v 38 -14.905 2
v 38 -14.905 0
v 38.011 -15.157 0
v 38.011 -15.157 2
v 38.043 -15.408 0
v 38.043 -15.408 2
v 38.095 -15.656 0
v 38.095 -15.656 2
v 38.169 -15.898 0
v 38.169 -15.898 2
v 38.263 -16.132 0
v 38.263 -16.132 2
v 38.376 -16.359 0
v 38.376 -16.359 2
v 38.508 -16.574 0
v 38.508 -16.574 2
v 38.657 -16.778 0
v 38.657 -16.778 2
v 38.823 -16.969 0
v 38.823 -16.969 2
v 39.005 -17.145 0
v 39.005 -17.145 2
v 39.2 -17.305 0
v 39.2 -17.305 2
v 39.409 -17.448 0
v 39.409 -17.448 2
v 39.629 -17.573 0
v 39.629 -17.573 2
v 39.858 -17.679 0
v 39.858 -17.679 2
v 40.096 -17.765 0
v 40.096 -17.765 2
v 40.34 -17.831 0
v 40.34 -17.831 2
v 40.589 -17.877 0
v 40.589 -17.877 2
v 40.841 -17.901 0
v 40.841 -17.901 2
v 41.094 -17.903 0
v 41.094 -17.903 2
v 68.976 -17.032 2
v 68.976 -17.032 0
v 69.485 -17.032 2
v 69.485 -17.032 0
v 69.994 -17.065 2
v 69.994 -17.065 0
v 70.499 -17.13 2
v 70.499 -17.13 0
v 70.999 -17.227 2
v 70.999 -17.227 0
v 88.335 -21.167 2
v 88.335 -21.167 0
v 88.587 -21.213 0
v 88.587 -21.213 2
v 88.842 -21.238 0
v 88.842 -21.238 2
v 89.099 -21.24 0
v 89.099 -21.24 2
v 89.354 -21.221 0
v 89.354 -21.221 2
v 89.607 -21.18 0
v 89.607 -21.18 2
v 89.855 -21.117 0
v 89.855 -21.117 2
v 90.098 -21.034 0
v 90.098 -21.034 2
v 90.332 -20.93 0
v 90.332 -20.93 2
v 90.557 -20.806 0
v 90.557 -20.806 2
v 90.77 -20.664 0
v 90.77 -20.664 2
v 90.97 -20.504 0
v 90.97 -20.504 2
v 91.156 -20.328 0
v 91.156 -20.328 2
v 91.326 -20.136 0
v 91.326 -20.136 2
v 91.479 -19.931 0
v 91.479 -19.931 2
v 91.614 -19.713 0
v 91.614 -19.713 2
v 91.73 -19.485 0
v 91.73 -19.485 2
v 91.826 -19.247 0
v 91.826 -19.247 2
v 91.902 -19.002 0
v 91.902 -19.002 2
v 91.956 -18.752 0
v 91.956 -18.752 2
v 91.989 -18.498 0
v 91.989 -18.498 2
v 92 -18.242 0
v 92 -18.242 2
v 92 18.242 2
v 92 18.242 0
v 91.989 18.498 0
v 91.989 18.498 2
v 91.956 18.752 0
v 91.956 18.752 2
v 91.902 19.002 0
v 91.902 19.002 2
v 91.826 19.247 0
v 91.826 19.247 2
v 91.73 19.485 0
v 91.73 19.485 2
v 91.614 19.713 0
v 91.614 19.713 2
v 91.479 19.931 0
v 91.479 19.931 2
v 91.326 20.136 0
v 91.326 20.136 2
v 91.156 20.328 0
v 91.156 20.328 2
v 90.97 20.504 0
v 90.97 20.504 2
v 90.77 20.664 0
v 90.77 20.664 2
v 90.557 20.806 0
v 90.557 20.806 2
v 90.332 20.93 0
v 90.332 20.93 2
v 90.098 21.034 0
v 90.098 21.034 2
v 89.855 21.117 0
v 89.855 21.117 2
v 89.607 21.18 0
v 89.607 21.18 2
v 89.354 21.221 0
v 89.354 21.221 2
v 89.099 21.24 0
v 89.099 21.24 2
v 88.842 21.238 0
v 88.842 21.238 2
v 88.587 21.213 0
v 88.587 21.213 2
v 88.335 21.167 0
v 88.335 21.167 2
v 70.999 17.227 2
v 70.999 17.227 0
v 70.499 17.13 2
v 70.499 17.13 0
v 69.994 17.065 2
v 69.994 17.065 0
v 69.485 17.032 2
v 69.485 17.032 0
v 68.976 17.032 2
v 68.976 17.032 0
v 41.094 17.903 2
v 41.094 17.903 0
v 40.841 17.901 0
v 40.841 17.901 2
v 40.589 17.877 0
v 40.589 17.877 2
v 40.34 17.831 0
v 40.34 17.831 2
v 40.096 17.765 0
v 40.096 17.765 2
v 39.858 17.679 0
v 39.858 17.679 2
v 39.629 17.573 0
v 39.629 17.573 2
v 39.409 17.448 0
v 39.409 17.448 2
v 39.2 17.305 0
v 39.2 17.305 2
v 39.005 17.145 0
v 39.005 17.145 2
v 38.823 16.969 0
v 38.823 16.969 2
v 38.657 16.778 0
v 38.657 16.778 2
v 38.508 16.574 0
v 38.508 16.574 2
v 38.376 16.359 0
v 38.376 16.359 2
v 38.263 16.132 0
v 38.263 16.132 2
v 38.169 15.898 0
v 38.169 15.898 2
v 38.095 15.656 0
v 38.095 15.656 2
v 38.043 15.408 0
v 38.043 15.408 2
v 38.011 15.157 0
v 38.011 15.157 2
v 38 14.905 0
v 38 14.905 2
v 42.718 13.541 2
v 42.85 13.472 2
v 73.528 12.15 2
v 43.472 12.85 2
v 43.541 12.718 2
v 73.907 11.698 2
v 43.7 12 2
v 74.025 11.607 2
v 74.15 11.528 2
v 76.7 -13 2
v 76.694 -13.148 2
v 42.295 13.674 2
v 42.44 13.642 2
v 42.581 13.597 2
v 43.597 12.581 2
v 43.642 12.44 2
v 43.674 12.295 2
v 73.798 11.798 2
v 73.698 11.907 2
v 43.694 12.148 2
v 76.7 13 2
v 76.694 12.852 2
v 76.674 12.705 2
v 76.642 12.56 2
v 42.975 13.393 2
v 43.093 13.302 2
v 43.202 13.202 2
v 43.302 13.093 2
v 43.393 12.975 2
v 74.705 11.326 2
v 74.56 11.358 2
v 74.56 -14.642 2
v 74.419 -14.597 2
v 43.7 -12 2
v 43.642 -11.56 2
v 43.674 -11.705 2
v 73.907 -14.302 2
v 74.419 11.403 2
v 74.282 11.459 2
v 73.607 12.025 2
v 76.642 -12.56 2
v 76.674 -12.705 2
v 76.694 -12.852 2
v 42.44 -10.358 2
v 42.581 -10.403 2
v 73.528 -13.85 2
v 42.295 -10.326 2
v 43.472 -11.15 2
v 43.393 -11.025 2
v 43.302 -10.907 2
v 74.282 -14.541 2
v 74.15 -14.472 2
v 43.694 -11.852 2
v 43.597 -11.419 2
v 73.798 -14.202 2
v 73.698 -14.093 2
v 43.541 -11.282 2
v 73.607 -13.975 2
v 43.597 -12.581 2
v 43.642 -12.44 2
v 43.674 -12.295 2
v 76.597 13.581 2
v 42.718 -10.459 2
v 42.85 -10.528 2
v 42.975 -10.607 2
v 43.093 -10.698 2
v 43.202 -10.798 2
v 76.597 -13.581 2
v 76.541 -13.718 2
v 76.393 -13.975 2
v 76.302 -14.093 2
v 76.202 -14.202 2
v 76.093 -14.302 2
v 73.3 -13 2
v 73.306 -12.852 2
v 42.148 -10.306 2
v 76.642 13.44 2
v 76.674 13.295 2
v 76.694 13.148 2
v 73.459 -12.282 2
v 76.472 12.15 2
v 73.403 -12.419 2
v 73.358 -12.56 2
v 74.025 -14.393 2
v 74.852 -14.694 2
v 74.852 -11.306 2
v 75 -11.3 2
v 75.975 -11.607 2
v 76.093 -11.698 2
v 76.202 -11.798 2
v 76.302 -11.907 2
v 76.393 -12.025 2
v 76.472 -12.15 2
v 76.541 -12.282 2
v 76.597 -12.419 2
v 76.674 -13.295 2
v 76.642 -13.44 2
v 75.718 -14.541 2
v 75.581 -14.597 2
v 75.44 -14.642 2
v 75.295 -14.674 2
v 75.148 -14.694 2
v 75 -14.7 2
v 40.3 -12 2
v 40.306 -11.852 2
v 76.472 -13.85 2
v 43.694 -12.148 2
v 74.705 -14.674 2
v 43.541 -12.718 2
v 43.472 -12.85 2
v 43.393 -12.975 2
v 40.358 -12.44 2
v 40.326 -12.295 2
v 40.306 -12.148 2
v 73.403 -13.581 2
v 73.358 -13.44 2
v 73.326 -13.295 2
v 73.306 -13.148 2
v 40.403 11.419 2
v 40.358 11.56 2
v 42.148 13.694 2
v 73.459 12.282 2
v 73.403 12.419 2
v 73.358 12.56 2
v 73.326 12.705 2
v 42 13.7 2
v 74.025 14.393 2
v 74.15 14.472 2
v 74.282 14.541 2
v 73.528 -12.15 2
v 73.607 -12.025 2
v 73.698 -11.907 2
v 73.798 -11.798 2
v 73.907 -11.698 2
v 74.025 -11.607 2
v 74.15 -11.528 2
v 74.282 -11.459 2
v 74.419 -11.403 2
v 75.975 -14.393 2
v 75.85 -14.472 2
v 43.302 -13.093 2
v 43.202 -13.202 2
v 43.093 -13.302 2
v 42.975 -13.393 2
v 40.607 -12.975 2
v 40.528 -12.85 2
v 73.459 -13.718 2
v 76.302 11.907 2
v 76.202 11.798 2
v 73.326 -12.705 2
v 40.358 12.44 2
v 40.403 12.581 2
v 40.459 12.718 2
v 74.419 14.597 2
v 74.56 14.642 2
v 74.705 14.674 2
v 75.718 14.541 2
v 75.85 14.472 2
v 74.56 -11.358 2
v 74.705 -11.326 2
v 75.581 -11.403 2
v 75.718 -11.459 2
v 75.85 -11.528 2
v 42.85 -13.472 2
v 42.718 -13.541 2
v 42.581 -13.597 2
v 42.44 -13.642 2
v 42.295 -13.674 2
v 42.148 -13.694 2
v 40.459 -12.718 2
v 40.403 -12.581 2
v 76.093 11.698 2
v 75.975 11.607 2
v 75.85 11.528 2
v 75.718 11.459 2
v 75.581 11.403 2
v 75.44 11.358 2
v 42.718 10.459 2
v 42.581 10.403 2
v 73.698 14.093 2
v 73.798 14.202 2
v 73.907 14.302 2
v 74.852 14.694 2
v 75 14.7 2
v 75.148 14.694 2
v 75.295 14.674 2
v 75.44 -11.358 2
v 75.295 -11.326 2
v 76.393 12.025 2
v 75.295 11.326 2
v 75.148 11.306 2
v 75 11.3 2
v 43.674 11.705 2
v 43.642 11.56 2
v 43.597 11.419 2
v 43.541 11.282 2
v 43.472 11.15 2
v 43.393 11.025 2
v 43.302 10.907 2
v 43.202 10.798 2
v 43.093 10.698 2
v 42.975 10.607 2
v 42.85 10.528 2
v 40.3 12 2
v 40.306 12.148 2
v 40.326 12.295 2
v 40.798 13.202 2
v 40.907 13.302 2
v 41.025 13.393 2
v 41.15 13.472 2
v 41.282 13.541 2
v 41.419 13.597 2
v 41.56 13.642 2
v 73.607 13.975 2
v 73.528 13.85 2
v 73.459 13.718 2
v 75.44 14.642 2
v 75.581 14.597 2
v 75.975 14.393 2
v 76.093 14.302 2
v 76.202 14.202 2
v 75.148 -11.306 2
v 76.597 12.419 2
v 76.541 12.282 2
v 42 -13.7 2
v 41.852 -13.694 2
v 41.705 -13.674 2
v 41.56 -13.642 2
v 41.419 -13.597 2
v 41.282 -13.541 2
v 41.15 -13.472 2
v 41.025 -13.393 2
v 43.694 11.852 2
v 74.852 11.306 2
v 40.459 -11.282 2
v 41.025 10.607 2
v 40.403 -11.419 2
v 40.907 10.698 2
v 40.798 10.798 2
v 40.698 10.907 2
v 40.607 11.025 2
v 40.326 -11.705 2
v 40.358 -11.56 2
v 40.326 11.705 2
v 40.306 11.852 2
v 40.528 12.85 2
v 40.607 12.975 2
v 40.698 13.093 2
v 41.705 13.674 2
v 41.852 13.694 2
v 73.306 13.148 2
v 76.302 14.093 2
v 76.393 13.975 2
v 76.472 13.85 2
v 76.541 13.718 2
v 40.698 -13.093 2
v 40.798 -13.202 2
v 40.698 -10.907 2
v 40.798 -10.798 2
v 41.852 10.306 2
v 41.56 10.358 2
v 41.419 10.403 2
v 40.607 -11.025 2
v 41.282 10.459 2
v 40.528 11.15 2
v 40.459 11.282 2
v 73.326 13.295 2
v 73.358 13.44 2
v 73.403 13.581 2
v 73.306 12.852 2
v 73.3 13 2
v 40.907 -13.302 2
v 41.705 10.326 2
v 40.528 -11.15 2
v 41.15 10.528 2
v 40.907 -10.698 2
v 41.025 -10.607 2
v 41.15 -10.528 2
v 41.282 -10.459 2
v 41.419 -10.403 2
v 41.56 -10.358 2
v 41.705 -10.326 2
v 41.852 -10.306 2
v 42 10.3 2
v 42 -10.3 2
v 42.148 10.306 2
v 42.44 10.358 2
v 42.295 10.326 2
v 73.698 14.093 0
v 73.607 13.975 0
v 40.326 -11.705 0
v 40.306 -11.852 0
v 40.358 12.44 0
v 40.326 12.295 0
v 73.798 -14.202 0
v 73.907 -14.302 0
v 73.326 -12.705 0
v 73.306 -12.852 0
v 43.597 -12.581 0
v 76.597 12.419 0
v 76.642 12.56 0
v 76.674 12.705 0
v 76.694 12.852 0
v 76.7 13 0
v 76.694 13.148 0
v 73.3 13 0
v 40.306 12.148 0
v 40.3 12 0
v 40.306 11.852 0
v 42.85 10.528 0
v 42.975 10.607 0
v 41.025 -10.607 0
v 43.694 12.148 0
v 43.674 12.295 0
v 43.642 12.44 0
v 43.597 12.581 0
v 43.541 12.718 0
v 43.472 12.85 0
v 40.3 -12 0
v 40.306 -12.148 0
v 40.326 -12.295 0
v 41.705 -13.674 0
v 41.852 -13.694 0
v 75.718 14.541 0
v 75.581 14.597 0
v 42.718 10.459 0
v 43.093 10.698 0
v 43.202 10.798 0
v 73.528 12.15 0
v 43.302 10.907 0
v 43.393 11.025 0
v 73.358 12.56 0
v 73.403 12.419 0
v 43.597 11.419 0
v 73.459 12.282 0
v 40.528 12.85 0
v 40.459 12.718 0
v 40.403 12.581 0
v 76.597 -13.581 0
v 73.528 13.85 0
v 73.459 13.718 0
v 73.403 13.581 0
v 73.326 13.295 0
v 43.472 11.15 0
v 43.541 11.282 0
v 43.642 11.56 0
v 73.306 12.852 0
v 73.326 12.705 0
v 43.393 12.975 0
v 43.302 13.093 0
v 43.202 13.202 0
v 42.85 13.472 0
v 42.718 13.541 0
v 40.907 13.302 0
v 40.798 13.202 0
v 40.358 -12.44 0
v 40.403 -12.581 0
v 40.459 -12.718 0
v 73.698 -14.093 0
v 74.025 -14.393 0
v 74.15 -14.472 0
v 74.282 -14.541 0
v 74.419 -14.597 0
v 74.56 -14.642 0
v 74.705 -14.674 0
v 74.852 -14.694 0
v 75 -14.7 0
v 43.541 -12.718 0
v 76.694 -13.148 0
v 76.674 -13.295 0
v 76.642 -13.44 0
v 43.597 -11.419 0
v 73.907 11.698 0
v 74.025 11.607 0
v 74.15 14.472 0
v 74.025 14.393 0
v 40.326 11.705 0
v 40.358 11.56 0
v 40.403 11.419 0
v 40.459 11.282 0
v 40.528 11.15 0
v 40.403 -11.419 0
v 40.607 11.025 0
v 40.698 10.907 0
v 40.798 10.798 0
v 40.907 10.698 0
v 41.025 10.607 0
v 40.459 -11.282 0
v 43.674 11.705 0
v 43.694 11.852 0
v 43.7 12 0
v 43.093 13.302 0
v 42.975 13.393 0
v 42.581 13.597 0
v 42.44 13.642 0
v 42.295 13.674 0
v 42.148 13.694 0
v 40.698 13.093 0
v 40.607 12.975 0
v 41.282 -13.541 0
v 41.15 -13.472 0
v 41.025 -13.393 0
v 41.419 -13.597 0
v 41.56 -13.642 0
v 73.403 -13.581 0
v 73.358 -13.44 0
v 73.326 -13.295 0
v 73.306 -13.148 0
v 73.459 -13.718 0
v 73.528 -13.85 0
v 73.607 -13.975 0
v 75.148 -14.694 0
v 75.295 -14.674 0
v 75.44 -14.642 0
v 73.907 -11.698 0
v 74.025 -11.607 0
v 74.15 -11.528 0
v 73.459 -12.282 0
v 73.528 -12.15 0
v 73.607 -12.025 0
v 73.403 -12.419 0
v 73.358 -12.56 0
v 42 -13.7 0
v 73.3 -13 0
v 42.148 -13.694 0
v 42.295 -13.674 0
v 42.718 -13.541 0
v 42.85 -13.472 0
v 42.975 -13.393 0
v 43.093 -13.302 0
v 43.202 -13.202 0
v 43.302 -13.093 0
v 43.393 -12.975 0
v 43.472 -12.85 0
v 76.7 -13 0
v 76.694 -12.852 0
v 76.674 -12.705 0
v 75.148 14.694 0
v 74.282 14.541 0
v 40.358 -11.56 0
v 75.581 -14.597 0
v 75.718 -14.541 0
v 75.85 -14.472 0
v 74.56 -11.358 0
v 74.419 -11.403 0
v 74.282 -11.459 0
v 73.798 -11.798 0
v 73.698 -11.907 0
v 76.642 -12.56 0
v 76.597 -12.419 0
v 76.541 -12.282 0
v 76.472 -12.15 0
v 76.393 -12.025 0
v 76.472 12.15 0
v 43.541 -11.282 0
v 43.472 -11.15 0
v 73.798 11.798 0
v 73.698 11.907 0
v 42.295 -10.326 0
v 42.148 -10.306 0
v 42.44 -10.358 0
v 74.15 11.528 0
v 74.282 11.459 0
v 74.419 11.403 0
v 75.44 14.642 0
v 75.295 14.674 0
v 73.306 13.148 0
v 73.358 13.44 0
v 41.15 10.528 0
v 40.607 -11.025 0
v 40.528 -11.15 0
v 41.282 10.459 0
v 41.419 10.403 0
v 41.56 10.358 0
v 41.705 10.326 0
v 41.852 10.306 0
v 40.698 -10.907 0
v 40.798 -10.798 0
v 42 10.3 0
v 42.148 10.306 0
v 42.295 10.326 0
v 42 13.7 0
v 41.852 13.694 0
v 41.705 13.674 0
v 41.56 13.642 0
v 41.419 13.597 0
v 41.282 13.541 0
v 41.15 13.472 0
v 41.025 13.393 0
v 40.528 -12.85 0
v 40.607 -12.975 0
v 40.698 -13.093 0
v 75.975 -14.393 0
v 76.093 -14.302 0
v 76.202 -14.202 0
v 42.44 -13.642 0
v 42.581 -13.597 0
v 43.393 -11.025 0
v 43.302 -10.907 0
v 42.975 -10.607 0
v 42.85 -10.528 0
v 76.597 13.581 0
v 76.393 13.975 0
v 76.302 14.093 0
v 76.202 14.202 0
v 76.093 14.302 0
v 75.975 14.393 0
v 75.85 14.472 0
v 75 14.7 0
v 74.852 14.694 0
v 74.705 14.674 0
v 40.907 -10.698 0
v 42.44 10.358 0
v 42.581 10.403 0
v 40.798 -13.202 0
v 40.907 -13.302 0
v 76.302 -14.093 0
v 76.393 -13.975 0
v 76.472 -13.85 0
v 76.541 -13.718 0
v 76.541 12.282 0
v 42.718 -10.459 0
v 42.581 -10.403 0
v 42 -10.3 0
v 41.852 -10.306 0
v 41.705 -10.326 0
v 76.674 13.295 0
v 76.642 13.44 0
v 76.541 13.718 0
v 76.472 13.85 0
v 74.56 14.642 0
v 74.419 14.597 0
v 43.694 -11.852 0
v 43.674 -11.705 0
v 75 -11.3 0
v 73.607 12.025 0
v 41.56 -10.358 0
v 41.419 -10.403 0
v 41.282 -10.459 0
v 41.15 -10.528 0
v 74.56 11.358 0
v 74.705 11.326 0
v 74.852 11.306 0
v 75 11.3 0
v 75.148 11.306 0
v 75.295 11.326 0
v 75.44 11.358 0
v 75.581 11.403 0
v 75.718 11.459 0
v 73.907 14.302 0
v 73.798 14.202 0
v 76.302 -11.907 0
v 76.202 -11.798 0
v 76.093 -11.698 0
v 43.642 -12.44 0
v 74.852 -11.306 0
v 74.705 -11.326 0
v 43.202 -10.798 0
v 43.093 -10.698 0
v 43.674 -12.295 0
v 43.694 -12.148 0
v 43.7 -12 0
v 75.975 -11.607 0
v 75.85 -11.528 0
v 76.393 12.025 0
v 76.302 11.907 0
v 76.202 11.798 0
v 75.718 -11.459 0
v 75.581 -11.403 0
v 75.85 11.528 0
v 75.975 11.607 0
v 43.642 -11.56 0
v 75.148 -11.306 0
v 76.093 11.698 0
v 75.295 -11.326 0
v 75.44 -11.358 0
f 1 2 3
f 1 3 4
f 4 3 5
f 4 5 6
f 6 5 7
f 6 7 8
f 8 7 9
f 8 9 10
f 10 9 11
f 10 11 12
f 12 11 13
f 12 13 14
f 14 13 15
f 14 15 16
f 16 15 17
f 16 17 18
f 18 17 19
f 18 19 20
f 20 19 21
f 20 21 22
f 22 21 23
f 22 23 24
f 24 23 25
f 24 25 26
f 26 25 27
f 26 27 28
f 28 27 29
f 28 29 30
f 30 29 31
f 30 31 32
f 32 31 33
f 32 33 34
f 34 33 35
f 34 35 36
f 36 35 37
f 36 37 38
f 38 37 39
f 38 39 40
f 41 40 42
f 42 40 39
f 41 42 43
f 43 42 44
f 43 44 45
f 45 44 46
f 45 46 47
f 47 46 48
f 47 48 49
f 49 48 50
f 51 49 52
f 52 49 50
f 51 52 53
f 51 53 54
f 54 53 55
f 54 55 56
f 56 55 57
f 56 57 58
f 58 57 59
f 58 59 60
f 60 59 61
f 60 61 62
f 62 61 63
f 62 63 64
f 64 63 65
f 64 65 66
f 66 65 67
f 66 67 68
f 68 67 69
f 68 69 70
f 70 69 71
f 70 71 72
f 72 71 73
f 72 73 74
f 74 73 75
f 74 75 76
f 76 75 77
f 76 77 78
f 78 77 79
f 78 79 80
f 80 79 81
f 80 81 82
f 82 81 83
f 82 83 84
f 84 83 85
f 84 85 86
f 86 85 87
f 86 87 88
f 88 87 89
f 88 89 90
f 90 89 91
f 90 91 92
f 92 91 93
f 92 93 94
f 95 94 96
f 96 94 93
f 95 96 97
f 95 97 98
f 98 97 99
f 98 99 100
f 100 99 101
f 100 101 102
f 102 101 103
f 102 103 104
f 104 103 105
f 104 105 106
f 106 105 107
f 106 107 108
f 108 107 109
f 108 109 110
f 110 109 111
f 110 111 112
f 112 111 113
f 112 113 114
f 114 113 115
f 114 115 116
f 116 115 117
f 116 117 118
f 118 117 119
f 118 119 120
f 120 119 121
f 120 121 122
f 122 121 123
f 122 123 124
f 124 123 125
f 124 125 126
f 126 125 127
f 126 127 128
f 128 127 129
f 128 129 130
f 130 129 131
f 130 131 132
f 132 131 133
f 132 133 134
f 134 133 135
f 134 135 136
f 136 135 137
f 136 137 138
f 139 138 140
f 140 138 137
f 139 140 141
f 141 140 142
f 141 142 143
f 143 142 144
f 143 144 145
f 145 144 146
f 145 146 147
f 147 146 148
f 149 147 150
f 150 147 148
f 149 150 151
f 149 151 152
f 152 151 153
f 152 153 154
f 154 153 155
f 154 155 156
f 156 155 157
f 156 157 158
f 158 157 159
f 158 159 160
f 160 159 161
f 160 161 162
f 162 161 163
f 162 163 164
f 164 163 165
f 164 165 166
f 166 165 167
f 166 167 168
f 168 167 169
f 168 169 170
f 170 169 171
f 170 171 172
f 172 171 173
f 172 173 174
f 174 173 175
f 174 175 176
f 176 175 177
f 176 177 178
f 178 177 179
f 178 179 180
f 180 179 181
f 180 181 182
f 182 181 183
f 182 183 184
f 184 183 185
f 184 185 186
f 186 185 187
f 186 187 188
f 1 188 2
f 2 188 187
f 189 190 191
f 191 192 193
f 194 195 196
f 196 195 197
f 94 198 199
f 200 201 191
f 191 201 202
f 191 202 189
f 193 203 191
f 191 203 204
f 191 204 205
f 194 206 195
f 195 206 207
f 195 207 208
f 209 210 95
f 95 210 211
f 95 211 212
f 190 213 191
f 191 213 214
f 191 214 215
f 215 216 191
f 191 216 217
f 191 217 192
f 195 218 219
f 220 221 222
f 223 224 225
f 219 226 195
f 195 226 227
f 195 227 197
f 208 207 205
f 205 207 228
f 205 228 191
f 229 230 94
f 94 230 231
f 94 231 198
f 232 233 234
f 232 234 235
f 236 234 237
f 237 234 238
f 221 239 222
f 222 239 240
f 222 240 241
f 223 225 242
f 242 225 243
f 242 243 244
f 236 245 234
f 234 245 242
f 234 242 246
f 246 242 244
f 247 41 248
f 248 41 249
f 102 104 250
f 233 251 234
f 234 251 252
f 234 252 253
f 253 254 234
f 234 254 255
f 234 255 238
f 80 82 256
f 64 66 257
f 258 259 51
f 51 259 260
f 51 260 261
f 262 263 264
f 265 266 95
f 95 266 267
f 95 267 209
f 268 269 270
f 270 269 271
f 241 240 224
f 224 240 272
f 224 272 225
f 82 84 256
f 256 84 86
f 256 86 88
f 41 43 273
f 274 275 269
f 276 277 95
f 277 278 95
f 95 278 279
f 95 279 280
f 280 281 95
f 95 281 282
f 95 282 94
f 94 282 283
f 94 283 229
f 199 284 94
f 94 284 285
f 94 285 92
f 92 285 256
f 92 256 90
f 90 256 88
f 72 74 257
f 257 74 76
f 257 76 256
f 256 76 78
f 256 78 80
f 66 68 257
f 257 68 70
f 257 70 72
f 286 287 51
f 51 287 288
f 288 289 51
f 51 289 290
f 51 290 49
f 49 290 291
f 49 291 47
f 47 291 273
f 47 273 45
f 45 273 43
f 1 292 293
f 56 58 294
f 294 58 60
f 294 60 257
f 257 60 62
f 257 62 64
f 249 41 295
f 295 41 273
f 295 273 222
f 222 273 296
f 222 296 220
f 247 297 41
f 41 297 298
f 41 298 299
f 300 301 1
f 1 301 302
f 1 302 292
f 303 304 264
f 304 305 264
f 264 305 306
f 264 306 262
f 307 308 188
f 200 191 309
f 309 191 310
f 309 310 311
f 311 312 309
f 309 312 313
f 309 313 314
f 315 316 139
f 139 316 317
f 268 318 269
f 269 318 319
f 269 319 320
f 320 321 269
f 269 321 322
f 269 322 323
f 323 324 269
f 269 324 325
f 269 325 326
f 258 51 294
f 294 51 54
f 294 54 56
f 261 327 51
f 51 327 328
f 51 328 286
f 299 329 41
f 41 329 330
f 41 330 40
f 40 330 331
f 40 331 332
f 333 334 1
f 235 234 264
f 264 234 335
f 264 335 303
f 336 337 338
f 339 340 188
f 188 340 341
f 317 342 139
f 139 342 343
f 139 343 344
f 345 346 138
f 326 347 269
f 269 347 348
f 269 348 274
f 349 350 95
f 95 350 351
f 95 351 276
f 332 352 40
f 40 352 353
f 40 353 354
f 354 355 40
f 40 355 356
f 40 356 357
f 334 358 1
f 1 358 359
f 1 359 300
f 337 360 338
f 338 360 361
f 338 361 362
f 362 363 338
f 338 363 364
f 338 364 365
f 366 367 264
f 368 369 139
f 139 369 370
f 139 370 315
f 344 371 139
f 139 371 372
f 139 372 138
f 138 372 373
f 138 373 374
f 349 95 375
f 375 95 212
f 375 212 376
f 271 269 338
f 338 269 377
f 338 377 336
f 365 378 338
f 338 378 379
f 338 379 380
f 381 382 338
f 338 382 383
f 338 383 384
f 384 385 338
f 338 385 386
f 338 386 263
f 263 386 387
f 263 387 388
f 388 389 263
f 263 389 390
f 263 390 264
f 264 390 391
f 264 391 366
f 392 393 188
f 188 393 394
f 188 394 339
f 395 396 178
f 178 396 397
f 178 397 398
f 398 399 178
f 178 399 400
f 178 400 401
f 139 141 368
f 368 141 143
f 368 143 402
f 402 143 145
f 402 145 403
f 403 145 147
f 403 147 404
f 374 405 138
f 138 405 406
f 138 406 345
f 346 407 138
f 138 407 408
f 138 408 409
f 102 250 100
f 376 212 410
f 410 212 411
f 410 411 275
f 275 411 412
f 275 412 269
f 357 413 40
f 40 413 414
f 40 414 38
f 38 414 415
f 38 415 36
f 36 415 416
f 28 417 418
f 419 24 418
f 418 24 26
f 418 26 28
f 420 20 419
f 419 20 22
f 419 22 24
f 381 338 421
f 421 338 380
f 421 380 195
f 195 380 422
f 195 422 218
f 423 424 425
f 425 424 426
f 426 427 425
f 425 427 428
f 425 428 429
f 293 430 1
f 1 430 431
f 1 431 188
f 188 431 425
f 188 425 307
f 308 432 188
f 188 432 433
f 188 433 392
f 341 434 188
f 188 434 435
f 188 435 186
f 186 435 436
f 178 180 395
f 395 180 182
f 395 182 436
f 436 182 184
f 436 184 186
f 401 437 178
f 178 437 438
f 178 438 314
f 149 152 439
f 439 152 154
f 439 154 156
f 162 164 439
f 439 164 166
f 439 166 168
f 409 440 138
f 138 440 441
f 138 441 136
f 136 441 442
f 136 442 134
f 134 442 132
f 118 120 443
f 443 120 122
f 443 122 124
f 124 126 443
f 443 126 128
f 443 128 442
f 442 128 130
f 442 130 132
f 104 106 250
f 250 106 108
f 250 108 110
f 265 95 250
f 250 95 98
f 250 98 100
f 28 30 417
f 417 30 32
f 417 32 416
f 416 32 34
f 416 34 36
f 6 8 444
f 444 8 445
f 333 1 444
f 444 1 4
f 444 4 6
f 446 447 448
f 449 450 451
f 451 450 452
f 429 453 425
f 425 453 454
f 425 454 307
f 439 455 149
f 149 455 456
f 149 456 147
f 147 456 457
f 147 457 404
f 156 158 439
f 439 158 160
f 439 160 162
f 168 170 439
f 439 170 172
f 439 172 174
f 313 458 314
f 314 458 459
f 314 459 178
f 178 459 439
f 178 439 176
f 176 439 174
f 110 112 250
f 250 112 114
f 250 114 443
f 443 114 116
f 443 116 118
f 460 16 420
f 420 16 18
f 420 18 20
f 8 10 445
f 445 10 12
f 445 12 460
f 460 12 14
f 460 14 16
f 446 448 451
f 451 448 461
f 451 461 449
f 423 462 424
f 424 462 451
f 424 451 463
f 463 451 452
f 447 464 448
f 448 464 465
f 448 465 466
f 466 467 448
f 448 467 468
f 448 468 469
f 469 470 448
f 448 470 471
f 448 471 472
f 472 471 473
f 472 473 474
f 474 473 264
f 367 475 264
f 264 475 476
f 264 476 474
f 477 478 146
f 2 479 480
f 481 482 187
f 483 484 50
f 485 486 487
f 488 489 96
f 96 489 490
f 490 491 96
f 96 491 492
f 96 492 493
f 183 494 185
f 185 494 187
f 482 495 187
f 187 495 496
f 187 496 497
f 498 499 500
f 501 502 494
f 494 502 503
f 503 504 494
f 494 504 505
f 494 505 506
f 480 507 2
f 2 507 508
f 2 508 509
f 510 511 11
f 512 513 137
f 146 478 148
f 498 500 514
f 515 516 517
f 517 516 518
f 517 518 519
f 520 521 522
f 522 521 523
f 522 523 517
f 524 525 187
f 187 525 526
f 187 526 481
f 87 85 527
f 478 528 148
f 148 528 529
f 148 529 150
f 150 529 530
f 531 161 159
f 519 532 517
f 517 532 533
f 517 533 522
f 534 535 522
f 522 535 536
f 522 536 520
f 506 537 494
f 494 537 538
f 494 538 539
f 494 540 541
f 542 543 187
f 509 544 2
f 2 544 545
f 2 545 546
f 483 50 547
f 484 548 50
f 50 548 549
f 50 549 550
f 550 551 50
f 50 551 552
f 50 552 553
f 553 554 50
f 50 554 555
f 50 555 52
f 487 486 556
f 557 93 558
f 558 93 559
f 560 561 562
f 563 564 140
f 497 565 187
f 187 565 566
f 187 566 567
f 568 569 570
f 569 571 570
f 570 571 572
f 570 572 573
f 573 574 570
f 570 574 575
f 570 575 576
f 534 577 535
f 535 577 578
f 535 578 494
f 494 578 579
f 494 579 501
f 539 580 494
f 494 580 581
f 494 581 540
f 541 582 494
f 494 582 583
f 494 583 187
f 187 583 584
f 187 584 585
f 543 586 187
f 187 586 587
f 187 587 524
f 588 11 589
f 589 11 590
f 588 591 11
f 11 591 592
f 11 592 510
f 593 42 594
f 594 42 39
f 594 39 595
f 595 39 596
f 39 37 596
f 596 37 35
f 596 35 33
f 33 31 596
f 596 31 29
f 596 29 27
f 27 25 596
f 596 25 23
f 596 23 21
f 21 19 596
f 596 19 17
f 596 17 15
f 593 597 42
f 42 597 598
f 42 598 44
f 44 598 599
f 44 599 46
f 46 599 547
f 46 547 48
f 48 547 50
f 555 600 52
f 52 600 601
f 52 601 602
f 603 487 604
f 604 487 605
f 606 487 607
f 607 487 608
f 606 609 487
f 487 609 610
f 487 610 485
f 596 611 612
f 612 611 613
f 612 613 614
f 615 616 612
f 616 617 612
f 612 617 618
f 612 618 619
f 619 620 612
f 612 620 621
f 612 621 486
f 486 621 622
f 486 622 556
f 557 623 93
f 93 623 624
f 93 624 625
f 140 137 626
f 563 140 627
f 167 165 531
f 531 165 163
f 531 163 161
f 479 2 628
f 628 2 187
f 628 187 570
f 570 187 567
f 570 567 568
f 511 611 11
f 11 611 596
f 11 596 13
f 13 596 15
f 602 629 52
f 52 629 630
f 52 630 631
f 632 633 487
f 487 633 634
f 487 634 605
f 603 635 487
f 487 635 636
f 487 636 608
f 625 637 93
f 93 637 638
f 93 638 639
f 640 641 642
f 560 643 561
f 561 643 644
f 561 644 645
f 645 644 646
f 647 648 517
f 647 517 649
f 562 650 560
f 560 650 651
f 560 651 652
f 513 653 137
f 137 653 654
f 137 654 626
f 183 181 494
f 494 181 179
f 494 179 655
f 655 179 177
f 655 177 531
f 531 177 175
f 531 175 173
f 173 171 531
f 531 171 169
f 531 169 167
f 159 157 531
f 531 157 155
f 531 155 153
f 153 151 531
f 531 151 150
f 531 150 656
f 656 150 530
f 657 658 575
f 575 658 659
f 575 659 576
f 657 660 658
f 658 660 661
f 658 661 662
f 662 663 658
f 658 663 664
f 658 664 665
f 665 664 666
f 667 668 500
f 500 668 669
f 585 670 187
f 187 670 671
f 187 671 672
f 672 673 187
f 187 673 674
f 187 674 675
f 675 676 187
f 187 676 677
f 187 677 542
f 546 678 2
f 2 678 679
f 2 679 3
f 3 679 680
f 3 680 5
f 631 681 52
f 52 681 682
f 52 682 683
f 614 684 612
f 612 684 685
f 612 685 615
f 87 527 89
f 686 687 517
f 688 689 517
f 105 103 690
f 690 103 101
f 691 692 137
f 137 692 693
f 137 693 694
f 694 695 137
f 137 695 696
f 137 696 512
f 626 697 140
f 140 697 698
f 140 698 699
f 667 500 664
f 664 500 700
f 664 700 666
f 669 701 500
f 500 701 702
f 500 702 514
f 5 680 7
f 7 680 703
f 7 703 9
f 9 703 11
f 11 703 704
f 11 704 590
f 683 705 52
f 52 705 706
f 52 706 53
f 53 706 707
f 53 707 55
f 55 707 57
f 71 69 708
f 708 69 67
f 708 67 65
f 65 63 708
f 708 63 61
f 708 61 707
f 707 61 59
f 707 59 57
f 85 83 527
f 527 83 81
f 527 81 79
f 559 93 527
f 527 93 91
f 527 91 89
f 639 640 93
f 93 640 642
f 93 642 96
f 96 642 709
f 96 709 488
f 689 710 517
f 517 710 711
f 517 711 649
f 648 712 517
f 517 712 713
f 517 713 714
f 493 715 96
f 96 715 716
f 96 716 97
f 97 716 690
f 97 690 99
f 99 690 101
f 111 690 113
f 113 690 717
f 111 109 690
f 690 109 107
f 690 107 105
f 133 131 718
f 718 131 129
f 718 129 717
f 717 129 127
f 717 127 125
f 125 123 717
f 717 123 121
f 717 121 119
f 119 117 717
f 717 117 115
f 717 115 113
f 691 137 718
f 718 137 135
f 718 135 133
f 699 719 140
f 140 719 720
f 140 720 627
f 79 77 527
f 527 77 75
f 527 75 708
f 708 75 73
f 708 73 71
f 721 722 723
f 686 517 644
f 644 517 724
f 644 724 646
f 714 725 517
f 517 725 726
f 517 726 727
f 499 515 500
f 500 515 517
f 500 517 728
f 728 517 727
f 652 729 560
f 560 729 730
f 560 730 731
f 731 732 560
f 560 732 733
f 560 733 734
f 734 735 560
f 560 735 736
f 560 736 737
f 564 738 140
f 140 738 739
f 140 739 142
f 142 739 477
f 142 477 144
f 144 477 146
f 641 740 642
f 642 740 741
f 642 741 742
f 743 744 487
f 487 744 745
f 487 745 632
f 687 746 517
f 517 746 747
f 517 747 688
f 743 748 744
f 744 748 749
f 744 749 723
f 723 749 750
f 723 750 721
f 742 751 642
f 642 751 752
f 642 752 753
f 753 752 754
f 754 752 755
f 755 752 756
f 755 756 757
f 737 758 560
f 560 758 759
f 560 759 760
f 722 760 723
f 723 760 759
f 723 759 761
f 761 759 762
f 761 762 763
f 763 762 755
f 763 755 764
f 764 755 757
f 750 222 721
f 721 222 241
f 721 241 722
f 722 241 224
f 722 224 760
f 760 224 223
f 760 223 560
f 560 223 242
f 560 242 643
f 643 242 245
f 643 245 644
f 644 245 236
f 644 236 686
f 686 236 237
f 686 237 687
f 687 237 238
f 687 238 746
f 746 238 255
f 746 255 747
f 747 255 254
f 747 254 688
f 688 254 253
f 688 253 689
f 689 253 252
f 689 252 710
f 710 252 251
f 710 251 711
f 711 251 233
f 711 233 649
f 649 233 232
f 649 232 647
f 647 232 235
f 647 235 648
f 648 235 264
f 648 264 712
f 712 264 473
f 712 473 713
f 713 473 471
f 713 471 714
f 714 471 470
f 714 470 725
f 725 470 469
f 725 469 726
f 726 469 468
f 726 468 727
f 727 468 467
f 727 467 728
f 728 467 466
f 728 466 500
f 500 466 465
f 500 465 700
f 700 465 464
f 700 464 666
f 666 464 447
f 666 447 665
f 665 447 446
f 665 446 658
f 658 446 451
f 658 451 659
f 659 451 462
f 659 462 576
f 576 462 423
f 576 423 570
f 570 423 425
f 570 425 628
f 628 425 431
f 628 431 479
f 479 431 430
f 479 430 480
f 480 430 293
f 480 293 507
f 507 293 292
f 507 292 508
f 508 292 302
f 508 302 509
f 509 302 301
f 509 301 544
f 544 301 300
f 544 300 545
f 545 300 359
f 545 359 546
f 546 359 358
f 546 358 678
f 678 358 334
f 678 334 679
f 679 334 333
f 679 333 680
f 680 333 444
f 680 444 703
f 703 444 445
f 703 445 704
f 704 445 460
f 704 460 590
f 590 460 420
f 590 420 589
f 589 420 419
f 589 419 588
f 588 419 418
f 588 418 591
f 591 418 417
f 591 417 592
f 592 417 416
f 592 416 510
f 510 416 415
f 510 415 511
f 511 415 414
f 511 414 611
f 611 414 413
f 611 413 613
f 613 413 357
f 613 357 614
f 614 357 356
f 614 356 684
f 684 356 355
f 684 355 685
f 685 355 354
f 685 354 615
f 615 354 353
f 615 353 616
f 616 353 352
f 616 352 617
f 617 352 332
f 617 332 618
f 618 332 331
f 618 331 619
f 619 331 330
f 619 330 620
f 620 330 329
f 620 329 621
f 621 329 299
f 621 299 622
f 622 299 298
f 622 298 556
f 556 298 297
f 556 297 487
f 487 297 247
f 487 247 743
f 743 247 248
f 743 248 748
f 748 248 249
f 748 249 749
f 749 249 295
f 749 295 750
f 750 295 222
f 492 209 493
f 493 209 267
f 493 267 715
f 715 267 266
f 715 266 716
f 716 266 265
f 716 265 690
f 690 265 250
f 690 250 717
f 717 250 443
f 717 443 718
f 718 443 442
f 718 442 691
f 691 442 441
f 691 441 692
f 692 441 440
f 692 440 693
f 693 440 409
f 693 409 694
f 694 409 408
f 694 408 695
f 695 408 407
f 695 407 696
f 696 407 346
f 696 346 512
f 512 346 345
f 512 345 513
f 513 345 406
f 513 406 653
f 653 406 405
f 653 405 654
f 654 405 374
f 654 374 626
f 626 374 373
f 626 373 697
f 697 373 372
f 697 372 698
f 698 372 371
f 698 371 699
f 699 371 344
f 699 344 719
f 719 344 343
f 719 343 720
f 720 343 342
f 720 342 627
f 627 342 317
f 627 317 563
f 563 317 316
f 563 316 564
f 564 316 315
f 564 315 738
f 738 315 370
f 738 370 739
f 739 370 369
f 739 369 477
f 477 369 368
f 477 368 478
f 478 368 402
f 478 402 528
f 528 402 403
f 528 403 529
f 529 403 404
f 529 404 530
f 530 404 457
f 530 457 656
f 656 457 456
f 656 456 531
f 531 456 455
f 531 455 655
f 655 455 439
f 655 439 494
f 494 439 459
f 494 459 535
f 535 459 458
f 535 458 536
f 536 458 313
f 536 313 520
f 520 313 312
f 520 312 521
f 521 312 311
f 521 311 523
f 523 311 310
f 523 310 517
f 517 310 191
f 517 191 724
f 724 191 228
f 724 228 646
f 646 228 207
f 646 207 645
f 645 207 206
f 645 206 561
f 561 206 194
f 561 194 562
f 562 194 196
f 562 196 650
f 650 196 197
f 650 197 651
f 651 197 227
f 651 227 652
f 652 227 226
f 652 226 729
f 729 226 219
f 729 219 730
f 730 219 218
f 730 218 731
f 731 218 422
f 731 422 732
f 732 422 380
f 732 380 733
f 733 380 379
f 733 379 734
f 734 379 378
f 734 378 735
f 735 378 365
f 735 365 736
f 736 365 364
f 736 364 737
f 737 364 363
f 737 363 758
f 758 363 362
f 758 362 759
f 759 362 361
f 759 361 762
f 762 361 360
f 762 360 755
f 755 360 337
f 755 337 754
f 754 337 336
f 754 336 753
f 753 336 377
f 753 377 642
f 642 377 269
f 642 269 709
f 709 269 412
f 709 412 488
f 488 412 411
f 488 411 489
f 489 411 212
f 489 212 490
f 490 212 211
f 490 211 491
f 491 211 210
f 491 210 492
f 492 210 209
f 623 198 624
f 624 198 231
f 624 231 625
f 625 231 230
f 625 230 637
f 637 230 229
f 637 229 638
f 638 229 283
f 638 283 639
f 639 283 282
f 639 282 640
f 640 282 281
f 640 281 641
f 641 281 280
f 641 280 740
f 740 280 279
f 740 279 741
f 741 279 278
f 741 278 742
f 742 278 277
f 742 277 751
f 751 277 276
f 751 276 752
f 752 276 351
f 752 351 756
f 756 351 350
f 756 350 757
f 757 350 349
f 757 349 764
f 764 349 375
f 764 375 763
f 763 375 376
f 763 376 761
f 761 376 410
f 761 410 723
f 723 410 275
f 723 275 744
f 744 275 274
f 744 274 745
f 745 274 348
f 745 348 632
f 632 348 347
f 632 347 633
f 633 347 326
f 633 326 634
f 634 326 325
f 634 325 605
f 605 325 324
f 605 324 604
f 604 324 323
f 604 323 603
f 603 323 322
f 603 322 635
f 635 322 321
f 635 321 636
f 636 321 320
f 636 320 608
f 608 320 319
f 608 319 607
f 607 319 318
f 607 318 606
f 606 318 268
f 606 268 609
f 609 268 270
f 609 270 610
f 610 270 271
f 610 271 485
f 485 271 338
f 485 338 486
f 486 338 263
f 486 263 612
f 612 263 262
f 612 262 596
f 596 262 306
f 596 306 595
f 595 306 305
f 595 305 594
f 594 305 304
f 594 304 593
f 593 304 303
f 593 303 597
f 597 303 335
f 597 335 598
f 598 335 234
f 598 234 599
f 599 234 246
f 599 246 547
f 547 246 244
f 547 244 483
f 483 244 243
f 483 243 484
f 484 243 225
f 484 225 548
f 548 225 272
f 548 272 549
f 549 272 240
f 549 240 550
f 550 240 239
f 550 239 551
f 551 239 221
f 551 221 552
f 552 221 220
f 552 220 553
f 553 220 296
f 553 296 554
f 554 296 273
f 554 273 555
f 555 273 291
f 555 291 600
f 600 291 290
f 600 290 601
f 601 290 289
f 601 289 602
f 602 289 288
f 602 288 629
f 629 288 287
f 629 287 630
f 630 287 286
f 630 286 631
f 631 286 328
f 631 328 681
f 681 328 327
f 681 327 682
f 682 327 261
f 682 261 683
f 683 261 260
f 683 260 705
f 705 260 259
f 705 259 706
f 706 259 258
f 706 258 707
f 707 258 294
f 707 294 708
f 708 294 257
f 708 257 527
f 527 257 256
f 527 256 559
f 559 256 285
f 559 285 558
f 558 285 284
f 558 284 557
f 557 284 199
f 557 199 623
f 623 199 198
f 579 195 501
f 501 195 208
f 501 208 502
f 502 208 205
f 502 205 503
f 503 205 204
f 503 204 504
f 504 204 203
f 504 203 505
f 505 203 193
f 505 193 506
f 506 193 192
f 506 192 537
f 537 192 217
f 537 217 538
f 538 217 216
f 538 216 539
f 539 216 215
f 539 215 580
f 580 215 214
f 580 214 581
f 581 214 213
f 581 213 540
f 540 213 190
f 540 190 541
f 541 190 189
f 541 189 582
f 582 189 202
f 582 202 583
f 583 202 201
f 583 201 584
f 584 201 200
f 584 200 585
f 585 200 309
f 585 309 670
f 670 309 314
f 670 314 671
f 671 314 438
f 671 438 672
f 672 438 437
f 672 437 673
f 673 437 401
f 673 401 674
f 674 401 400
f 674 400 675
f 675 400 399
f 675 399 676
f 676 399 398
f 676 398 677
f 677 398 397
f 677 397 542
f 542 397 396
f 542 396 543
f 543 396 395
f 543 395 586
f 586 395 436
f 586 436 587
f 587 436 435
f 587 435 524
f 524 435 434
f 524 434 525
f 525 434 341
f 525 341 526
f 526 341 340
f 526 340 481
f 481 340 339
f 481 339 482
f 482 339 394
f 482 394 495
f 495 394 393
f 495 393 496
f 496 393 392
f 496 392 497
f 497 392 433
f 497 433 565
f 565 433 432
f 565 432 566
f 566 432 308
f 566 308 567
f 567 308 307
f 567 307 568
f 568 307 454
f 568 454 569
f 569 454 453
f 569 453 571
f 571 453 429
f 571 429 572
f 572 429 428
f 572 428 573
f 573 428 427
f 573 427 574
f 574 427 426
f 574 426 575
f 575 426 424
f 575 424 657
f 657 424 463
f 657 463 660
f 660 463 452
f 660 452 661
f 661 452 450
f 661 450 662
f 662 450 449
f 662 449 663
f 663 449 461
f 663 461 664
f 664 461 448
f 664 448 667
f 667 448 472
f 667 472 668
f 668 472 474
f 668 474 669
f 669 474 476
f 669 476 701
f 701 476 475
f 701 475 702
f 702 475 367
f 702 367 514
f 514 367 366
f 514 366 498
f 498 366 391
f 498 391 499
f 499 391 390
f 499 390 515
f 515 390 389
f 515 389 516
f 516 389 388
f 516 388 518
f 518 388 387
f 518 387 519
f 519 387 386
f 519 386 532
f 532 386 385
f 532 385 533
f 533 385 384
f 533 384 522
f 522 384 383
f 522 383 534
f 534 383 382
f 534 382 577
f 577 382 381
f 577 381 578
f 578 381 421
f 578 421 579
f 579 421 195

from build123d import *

# Parameters (mm, degrees)
UNDERSIDE_COVER_T2_DEPTH         = 2
SKETCH_2_R                       = 1.7
CLOSURE_ONLY_FOUR_M3_HOLES_DEPTH = 2


with BuildPart() as part:
    # 草图1 → Underside_cover_T2 (new body)
    with BuildSketch(Plane.XY):
        with BuildLine():
            Line((41.093704257, -17.903321742), (68.976089412, -17.031997206))
            ThreePointArc((68.976089412, -17.031997206), (69.993731032, -17.065020347), (70.99893626, -17.227030968))
            Line((70.99893626, -17.227030968), (88.335136689, -21.16707652))
            ThreePointArc((88.335136689, -21.16707652), (90.871551504, -20.586309047), (92, -18.241677953))
            Line((92, -18.241677953), (92, 18.241677953))
            ThreePointArc((92, 18.241677953), (90.871551504, 20.586309047), (88.335136689, 21.16707652))
            Line((88.335136689, 21.16707652), (70.99893626, 17.227030968))
            ThreePointArc((70.99893626, 17.227030968), (69.993731032, 17.065020347), (68.976089412, 17.031997206))
            Line((68.976089412, 17.031997206), (41.093704257, 17.903321742))
            ThreePointArc((41.093704257, 17.903321742), (38.912071933, 17.05898058), (38, 14.904785514))
            Line((38, 14.904785514), (38, -14.904785514))
            ThreePointArc((38, -14.904785514), (38.912071933, -17.05898058), (41.093704257, -17.903321742))
        make_face()
    extrude(amount=UNDERSIDE_COVER_T2_DEPTH)

    # 草图2 → Closure_only_four_M3_holes (cut)
    with BuildSketch(Plane.XY.offset(2)):
        with Locations((42, -12)):
            Circle(SKETCH_2_R)
        with Locations((42, 12)):
            Circle(SKETCH_2_R)
        with Locations((75, -13)):
            Circle(SKETCH_2_R)
        with Locations((75, 13)):
            Circle(SKETCH_2_R)
    extrude(amount=-CLOSURE_ONLY_FOUR_M3_HOLES_DEPTH, mode=Mode.SUBTRACT)


solid = part.part
